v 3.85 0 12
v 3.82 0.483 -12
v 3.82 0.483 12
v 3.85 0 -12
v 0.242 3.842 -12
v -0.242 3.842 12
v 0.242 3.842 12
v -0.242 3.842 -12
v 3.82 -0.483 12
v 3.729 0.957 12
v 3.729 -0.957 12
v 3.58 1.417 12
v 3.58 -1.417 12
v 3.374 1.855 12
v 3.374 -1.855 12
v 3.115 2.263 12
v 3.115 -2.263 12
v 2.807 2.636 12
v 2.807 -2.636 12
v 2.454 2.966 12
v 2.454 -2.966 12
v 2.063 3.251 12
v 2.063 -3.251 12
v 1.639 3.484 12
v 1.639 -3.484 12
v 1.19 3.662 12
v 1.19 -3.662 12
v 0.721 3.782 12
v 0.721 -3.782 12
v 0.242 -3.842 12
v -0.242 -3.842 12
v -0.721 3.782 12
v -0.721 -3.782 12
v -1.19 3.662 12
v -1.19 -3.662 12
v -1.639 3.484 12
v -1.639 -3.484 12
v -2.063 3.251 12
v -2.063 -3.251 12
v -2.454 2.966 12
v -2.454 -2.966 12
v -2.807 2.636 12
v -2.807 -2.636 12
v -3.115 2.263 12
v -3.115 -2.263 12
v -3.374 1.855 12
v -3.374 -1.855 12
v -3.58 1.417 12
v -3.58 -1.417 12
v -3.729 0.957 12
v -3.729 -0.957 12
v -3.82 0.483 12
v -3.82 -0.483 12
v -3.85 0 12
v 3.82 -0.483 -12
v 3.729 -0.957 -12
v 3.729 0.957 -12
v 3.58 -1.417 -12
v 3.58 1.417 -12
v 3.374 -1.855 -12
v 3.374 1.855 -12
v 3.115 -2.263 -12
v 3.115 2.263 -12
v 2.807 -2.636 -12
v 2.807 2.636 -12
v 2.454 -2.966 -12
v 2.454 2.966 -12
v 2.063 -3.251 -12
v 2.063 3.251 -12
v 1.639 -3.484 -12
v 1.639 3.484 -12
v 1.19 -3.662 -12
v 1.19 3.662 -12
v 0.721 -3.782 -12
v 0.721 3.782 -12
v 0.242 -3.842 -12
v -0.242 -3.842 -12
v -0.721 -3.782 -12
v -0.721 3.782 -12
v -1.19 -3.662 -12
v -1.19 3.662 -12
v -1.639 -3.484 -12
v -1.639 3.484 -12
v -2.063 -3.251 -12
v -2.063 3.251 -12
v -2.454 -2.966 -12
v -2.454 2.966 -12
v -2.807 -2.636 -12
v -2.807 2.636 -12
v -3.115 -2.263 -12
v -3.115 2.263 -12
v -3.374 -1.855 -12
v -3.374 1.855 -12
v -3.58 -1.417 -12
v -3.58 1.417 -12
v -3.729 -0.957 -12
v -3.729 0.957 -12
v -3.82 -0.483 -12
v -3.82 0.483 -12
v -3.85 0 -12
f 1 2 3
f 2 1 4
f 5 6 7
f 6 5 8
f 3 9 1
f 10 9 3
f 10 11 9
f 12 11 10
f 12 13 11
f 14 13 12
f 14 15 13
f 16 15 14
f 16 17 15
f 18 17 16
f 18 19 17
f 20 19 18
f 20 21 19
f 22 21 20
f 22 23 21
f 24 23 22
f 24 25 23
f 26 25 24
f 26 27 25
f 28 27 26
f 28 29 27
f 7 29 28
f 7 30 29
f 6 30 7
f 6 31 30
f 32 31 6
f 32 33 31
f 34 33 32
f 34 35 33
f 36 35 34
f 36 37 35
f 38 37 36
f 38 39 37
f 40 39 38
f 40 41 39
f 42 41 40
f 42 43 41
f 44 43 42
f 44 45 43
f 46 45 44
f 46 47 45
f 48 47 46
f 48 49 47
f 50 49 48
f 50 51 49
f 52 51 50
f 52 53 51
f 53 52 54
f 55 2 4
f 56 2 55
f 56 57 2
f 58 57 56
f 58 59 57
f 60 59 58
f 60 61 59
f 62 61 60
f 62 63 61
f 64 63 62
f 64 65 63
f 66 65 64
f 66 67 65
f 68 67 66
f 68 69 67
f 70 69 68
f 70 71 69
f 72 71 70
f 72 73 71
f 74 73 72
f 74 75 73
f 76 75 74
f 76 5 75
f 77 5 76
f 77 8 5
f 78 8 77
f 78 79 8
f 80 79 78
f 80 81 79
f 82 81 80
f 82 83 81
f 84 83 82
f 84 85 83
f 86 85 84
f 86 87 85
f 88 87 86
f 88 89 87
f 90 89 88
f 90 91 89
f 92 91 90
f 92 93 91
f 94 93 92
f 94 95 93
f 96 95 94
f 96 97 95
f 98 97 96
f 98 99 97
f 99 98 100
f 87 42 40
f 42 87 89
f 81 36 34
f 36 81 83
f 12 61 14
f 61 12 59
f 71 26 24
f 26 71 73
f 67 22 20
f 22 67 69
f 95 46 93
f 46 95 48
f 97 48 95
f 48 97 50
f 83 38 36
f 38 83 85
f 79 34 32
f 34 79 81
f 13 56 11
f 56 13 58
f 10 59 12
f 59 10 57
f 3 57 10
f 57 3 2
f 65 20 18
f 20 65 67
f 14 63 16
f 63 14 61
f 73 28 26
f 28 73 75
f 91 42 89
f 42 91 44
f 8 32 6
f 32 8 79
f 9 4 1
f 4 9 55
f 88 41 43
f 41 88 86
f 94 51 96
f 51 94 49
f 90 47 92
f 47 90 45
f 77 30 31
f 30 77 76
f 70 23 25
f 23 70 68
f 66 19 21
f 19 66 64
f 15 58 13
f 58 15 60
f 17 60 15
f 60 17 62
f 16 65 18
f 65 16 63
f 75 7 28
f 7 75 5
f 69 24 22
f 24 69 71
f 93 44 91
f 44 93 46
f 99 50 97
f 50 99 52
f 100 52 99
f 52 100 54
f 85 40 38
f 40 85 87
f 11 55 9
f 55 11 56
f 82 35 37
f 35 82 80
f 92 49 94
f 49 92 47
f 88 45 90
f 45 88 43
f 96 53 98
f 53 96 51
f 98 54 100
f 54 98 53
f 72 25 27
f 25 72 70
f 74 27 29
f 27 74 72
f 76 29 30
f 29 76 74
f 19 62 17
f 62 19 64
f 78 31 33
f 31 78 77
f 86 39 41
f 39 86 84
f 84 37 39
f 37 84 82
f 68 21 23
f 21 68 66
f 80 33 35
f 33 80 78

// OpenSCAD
$fn = 50;


difference() {
	union() {
		translate(v = [0, 0, -12.0000000000]) {
			cylinder(h = 24, r = 3.8500000000);
		}
	}
	union() {
		translate(v = [0, 0, -100.0000000000]) {
			cylinder(h = 200, r = 0);
		}
	}
}
